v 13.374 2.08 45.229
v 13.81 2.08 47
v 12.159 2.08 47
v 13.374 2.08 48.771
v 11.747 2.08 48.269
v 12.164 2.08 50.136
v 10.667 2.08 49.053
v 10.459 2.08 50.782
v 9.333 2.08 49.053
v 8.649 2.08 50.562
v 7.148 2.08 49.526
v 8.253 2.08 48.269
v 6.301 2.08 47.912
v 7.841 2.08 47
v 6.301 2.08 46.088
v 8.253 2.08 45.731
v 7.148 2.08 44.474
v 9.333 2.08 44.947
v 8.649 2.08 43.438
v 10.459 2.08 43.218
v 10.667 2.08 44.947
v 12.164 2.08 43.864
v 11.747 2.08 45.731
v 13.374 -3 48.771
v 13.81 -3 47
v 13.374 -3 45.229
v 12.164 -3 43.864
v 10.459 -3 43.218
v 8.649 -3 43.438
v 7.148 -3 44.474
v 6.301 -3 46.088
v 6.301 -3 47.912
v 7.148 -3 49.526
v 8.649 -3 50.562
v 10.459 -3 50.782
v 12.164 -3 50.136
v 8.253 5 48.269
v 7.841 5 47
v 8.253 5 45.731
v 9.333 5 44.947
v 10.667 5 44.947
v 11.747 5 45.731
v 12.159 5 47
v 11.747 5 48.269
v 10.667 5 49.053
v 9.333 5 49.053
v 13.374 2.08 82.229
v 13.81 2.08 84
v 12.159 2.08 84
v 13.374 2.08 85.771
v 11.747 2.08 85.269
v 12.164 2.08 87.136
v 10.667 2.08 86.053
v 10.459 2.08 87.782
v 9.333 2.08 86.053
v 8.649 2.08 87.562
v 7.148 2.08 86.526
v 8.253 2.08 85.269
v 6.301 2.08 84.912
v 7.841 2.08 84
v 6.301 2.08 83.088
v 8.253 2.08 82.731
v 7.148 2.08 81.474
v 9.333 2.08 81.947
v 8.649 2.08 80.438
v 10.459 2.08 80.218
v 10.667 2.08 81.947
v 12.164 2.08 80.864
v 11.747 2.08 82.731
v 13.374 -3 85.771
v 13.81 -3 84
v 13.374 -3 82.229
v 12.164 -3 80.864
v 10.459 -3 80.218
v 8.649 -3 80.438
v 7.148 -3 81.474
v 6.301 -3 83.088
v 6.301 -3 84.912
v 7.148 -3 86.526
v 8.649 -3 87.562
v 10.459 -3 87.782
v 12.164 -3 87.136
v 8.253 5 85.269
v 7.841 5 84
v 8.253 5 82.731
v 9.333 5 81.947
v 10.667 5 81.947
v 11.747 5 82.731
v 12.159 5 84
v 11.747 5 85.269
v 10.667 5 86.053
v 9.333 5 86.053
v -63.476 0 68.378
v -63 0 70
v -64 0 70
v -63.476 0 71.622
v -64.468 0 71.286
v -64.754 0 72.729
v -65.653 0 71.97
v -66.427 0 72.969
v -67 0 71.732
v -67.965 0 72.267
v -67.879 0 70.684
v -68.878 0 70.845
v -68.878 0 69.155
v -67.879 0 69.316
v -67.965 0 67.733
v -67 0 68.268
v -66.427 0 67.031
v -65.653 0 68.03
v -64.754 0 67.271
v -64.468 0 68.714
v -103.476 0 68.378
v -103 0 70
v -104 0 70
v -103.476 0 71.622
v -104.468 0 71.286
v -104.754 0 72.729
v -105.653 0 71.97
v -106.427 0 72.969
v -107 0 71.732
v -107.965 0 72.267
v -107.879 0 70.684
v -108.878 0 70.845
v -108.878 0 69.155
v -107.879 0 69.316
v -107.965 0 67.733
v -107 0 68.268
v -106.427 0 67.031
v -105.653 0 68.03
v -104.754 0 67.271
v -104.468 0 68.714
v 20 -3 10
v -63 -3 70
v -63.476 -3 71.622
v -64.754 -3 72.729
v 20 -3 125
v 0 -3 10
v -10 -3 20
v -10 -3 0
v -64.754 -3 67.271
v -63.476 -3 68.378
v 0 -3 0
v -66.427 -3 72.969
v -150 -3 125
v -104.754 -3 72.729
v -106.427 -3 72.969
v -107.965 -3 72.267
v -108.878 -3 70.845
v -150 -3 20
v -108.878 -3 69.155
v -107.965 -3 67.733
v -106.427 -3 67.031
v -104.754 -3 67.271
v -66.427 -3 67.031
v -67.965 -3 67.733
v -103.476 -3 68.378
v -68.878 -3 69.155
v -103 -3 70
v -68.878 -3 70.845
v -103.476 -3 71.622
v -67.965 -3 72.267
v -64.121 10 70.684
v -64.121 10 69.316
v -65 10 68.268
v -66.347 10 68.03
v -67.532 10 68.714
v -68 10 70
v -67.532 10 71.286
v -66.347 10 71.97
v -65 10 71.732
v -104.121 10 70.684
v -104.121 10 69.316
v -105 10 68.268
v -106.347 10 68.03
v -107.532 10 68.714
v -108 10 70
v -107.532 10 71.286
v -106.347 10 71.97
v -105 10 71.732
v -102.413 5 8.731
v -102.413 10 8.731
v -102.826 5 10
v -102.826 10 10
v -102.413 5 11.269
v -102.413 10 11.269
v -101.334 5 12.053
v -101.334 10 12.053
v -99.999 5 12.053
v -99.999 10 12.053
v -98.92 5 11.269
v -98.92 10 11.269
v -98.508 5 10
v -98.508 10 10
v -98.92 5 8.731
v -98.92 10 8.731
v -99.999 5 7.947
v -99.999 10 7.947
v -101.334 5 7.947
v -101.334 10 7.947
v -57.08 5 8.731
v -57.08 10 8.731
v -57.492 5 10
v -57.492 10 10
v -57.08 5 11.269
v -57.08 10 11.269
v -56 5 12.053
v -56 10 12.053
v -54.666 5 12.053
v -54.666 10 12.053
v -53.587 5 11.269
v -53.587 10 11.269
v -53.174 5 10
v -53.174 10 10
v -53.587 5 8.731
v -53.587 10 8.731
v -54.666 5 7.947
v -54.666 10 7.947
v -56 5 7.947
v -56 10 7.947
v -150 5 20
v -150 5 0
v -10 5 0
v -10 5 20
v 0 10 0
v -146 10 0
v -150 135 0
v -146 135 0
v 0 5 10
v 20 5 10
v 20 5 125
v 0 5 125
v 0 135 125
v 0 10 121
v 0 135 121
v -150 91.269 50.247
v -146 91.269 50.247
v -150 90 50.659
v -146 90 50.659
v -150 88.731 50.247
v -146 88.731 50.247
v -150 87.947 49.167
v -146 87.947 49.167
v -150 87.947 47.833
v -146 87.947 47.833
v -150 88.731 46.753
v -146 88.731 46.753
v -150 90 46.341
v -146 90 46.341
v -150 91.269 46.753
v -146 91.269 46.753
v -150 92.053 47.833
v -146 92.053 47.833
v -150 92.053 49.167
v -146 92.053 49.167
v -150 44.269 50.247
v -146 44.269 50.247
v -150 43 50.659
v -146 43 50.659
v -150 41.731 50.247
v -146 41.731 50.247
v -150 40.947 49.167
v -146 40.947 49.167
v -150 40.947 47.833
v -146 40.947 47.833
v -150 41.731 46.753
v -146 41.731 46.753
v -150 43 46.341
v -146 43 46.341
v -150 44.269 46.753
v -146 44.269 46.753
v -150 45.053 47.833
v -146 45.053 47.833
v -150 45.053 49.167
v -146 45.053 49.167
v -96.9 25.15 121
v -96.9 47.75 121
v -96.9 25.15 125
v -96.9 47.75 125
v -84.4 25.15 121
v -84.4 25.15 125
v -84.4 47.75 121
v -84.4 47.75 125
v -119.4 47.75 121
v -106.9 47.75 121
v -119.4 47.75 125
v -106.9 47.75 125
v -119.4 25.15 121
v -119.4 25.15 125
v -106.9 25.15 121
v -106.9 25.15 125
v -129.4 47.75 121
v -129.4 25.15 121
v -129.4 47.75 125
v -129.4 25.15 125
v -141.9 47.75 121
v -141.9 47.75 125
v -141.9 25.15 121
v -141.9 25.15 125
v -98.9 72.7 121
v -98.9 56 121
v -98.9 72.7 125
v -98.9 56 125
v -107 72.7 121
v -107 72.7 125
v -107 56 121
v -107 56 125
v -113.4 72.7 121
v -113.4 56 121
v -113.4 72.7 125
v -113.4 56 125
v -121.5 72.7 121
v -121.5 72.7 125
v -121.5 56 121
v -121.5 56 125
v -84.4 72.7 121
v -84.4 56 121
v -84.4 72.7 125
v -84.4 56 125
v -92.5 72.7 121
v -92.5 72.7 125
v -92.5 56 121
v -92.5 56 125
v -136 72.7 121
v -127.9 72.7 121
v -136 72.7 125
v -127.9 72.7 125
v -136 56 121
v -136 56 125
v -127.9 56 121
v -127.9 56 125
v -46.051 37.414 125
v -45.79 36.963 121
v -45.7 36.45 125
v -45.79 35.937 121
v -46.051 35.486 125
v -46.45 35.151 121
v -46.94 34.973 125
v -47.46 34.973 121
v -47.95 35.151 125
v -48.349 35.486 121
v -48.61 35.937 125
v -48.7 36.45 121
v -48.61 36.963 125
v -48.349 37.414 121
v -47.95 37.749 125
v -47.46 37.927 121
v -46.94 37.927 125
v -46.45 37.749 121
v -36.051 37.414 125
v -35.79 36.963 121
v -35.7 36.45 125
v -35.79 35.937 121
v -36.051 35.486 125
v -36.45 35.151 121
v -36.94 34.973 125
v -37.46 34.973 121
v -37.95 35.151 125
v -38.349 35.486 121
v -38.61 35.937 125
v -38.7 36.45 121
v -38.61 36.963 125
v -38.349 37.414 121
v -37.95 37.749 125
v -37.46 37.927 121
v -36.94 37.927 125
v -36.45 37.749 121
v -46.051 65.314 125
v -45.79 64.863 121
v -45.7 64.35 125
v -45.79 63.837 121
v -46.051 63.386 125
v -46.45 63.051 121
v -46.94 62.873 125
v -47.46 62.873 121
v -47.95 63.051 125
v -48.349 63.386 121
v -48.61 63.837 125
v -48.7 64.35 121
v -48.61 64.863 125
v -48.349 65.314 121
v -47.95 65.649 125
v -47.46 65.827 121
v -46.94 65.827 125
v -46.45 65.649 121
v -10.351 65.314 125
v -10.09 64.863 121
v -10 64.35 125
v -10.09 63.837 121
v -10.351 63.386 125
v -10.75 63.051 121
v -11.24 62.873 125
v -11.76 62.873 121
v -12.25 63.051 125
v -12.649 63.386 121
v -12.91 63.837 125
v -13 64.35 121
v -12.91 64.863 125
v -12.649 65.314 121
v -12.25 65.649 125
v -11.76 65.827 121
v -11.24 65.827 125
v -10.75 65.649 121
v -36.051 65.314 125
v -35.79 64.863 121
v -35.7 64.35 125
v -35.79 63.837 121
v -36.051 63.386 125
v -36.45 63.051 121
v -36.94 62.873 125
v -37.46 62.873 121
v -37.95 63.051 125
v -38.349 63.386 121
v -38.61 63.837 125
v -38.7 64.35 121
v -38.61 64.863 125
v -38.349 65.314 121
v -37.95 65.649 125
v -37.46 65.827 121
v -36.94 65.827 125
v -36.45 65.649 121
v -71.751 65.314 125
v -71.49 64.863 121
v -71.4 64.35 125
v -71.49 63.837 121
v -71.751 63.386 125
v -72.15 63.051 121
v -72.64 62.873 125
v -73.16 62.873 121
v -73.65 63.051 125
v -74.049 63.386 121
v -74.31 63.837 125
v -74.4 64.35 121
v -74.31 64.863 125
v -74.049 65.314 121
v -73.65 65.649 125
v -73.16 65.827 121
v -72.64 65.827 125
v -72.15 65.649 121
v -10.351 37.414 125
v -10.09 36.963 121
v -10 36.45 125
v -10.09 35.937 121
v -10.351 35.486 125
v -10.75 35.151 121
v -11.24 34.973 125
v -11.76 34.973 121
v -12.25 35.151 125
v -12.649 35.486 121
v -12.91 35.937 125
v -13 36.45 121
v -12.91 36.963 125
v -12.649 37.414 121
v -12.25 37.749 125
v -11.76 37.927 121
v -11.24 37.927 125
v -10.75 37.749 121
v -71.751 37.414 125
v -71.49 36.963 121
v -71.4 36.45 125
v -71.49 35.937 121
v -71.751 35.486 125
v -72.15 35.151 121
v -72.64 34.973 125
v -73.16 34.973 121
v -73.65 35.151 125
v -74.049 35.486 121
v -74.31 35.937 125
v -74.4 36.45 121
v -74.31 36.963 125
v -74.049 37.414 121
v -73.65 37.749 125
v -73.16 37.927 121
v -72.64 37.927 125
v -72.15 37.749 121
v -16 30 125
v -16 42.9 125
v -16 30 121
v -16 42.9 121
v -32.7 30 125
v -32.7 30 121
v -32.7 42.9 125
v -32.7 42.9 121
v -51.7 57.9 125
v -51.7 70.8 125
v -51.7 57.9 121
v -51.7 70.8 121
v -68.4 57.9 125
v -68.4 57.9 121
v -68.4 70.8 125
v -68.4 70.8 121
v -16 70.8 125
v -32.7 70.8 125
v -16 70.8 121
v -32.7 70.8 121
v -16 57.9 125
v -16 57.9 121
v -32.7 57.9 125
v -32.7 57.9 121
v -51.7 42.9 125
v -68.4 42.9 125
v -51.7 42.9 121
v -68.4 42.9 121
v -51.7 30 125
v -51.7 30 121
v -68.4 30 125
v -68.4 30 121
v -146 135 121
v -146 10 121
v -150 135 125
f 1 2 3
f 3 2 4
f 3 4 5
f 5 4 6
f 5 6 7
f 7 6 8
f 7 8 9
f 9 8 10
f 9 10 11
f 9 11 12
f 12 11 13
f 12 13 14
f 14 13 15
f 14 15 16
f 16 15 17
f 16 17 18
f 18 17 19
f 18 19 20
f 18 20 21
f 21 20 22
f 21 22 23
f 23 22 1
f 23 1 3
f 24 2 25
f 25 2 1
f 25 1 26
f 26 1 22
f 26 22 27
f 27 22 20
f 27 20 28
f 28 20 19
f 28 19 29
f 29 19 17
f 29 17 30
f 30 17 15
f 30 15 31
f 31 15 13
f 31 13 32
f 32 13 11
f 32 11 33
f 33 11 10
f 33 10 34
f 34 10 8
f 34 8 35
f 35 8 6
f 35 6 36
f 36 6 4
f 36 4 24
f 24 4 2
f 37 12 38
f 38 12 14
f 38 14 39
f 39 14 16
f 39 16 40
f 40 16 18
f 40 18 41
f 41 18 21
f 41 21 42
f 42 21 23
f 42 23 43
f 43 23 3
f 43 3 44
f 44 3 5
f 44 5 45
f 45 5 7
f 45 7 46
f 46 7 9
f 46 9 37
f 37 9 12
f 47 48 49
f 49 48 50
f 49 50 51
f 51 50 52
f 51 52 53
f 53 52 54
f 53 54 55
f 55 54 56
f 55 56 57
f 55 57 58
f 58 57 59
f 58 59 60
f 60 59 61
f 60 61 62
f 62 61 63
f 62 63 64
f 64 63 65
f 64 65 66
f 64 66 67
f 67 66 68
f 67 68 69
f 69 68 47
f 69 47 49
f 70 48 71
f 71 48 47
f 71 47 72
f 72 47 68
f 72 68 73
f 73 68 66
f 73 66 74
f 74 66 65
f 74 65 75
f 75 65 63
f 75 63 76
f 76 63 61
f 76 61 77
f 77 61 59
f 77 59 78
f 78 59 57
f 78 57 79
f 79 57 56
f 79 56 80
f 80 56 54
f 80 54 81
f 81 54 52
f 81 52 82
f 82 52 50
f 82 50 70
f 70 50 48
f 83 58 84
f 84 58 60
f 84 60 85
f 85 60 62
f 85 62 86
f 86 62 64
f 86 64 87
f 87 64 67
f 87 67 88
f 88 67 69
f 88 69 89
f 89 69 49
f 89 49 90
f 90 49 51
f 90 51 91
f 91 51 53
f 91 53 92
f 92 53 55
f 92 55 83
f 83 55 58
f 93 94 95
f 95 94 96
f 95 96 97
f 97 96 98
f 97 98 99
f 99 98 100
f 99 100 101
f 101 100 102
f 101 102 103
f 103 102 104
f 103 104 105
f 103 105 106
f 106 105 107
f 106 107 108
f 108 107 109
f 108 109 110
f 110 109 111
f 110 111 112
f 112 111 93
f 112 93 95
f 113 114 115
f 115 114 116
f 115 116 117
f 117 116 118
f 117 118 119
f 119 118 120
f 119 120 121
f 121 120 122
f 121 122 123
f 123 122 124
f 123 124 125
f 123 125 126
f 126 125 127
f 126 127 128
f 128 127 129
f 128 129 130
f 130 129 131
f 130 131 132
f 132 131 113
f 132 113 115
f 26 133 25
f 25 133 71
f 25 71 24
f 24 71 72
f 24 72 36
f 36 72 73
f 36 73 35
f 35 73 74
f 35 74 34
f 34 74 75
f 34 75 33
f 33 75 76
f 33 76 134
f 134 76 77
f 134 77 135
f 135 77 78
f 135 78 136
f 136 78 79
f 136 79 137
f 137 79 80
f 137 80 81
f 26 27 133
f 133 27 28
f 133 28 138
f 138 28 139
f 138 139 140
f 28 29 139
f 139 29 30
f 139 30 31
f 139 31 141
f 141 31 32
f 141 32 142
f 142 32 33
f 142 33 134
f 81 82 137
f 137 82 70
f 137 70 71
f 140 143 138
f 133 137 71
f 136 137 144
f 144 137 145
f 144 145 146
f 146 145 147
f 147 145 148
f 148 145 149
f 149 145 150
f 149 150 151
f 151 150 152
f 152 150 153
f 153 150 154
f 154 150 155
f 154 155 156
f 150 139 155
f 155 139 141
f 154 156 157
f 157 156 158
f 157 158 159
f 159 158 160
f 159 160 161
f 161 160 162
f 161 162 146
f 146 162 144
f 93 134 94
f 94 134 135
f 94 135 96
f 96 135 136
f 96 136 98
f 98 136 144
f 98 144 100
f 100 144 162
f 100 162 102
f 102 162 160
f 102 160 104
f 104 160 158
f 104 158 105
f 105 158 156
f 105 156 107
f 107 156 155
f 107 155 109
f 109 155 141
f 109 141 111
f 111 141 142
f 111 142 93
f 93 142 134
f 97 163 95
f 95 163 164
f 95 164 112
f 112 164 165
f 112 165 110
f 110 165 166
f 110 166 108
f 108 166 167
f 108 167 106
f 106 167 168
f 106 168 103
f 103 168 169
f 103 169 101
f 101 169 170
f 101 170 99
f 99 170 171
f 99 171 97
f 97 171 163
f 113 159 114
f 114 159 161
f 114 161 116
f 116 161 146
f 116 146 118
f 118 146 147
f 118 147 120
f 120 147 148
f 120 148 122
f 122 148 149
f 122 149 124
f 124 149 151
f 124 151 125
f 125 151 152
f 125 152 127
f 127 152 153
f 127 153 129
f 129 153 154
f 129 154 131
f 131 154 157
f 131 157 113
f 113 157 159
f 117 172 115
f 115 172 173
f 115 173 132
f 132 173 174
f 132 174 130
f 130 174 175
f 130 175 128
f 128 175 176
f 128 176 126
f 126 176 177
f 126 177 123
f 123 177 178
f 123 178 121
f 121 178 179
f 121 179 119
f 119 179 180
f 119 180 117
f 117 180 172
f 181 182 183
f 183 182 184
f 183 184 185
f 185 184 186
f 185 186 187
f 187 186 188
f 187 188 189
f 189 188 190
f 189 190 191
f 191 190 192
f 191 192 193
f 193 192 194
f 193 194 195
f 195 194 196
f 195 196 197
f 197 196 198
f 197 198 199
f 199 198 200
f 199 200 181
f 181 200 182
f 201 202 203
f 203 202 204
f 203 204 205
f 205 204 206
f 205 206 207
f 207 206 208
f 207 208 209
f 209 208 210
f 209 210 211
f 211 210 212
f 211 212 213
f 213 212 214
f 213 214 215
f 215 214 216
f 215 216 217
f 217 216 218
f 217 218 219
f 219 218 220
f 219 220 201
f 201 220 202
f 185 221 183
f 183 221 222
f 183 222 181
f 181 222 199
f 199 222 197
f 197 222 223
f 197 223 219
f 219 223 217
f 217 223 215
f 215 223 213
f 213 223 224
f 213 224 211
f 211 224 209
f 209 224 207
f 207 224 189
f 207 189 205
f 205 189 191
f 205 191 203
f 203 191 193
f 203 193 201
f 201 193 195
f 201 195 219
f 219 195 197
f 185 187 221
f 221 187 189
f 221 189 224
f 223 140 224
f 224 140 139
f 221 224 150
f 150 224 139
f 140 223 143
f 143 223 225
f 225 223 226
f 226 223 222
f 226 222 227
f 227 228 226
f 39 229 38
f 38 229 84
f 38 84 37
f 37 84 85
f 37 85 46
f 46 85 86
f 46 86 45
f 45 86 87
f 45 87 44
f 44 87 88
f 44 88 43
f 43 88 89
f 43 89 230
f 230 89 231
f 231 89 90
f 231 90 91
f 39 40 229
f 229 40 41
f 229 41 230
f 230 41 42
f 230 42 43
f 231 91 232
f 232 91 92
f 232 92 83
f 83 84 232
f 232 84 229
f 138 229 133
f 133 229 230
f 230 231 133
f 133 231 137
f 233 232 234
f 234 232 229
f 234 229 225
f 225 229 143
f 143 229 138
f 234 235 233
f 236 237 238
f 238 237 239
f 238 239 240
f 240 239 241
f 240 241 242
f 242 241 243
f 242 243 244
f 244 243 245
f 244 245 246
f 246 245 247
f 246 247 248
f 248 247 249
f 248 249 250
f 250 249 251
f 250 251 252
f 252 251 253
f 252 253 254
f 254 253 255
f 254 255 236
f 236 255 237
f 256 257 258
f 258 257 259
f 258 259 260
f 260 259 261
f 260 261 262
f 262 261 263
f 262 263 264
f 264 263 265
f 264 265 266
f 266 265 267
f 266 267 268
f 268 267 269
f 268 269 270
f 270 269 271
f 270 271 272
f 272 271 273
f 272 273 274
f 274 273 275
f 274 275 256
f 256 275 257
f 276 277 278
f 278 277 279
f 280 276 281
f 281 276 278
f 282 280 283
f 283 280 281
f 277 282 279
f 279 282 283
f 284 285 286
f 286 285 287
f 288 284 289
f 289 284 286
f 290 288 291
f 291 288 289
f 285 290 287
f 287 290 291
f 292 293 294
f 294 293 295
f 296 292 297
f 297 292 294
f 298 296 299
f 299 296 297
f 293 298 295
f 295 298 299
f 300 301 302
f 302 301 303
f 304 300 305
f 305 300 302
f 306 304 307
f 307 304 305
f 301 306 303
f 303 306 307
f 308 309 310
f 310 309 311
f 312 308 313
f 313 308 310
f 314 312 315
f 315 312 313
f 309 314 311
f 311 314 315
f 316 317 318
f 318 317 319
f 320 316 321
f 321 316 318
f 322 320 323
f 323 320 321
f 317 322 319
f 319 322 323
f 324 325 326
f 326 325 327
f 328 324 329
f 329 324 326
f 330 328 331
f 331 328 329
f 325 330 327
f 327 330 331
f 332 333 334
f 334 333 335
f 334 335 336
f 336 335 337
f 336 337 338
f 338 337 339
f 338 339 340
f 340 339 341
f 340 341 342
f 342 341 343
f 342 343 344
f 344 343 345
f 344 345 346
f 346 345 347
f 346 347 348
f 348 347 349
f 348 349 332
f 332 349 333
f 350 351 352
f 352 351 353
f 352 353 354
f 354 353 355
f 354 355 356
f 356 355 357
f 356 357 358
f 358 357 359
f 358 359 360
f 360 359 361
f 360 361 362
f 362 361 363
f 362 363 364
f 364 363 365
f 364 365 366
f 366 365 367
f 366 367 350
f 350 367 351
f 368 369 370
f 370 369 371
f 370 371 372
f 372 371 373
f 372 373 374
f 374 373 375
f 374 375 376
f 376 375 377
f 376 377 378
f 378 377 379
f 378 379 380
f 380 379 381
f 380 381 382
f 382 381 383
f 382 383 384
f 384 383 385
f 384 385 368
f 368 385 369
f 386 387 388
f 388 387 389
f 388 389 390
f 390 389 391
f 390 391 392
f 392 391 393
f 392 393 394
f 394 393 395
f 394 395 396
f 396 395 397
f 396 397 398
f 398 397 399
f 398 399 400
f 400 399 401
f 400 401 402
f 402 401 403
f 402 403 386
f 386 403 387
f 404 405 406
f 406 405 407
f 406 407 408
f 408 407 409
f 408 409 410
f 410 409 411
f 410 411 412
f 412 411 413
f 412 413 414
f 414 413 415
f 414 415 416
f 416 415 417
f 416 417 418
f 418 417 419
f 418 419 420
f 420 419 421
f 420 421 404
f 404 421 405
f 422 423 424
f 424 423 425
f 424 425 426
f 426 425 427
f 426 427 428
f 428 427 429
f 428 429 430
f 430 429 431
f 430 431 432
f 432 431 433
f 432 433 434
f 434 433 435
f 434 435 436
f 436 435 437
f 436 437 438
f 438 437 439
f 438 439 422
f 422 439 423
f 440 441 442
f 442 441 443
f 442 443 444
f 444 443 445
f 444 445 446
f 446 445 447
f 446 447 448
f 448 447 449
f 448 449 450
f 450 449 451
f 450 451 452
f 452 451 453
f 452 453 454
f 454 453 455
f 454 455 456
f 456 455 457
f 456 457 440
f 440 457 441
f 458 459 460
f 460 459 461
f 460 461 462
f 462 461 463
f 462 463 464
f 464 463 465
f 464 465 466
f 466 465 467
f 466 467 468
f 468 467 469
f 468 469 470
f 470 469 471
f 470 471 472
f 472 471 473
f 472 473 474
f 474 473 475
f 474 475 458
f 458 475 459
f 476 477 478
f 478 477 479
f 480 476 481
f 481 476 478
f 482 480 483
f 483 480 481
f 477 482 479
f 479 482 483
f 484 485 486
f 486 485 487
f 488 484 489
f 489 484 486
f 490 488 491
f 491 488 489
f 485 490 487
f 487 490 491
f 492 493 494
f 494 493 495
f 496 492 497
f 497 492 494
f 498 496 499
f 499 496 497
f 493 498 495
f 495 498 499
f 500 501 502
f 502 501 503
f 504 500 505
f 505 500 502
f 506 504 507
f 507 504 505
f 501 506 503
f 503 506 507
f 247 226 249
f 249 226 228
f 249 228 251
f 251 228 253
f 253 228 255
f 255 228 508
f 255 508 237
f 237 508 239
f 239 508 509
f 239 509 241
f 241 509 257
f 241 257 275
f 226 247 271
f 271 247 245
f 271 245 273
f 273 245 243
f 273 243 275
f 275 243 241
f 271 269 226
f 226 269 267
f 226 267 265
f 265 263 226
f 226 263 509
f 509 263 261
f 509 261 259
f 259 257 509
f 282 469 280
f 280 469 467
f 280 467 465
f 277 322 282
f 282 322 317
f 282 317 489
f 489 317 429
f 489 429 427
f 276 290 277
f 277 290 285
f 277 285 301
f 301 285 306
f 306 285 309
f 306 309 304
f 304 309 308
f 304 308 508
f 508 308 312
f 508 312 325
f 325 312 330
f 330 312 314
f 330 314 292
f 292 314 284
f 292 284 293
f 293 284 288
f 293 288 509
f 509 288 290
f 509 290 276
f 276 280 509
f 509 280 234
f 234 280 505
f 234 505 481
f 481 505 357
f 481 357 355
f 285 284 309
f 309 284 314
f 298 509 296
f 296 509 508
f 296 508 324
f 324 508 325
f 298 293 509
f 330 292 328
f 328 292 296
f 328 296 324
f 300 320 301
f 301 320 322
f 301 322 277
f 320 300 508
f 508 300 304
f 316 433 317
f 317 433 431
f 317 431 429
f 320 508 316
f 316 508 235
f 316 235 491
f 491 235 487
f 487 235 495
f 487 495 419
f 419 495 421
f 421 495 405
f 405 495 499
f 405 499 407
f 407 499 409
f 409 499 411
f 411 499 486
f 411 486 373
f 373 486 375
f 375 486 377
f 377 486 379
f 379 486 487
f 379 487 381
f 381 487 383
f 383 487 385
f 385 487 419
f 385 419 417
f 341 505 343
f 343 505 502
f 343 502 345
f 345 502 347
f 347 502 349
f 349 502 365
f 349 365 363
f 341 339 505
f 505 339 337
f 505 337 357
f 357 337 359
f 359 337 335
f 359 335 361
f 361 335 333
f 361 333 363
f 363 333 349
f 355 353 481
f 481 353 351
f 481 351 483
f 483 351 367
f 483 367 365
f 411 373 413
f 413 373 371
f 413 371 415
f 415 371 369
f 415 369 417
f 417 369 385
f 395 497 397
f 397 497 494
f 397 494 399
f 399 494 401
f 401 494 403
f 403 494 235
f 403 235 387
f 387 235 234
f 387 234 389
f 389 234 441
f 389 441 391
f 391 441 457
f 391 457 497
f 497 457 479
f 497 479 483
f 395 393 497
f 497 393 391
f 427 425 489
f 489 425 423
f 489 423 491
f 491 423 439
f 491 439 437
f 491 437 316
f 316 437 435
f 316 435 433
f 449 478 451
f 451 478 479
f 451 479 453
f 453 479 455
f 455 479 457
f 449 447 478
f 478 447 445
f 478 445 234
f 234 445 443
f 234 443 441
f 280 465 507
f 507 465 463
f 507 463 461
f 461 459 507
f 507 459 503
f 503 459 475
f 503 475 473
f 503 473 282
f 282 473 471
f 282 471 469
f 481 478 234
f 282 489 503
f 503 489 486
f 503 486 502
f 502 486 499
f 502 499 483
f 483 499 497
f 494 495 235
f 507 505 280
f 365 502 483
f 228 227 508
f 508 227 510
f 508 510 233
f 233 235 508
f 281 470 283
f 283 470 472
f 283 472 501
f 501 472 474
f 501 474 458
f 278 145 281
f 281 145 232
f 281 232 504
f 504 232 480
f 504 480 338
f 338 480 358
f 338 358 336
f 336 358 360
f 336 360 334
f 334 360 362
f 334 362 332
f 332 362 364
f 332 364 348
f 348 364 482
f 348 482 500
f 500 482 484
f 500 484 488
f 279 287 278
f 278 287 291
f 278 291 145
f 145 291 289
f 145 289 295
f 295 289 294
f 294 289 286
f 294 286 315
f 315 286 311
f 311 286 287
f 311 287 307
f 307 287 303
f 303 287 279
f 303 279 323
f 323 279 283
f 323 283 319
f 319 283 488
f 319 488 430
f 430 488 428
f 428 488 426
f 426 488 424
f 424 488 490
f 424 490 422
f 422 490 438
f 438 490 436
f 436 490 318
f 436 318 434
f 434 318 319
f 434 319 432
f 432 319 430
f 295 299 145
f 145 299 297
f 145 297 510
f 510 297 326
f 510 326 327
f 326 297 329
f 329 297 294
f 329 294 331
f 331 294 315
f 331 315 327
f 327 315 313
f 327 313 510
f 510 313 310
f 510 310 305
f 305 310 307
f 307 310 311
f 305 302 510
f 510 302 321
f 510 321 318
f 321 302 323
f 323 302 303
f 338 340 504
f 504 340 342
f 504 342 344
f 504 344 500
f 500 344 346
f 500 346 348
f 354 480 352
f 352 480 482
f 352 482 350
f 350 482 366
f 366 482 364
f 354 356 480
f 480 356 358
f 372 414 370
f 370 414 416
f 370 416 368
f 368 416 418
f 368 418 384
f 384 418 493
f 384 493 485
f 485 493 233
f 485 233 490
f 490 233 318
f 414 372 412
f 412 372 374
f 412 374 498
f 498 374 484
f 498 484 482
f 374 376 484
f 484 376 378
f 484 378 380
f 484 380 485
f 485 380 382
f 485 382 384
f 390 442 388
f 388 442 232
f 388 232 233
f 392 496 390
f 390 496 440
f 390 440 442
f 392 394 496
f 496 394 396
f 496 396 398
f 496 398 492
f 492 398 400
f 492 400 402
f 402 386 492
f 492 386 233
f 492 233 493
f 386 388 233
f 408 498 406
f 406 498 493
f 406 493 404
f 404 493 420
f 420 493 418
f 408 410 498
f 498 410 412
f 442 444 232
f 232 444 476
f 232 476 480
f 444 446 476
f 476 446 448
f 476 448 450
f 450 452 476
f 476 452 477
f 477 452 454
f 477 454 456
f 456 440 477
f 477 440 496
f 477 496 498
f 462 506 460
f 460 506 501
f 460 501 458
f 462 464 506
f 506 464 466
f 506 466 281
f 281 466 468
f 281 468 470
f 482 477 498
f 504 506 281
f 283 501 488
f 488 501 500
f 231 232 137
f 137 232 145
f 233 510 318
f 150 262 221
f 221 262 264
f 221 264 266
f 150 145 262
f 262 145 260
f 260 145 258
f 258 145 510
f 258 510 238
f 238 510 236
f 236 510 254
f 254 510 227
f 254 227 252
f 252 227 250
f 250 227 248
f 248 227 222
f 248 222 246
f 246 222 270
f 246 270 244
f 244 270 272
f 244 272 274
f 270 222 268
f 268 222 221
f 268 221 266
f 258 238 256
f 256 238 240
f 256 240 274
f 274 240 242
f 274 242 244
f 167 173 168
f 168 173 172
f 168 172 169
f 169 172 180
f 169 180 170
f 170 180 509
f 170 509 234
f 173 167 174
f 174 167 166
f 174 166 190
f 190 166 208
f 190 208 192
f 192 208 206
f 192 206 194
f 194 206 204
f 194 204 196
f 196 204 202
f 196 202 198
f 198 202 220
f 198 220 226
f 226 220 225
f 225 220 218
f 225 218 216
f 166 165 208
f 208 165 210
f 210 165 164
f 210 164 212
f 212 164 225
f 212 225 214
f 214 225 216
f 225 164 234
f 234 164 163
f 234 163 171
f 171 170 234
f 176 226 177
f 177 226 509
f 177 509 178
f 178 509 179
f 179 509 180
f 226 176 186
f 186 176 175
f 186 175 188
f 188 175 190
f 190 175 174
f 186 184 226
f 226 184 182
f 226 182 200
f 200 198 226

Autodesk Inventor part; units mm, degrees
ref_plane "YZ Plane" through (0, 0, 0) normal (1, 0, 0) x (0, 1, 0)
ref_plane "XZ Plane" through (0, 0, 0) normal (0, 1, 0) x (-1, 0, 0)
ref_plane "XY Plane" through (0, 0, 0) normal (0, 0, 1) x (1, 0, 0)
sketch "Sketch1" plane through (0, 0, 0) normal (0, 1, 0) x (-1, 0, 0)
  line L0 (0, 0) -> (150, 0)
  line L1 (150, 0) -> (150, 125)
  line L2 (150, 125) -> (0, 125)
  line L3 (0, 125) -> (0, 0)
  dimension "d0" = 150
  dimension "d1" = 125
extrude "Extrusion1" add sketch "Sketch1" along normal blind 10
sketch "Sketch2" plane through (0, 10, 0) normal (0, 1, 0) x (1, 0, 0)
  line L0 (0, -125) -> (0, 0) projected
  line L1 (0, 0) -> (-146, 0)
  line L2 (-146, 0) -> (-146, -121)
  line L3 (-146, -121) -> (0, -121)
  line L4 (0, -121) -> (0, 0)
  line L5 (0, -125) -> (0, 0) projected
  line L6 (0, 0) -> (-150, 0) projected
  line L7 (-150, 0) -> (-150, -125) projected
  line L8 (-150, -125) -> (0, -125) projected
  point P0 (-146, 0)
  dimension "d4" = 146
  dimension "d5" = 121
extrude "Extrusion2" add sketch "Sketch2" along normal blind 125 contours L8 L7 L6 L2 L3 L0
sketch "Sketch3" plane through (0, 0, 125) normal (1, 0, 0) x (0, 0, -1)
  line L0 (0, 0) -> (0, 135) projected
  line L1 (0, 0) -> (0, 5)
  line L2 (125, 0) -> (125, 10) projected
  line L3 (125, 0) -> (0, 0) projected
  line L4 (125, 0) -> (0, 0)
  line L5 (0, 5) -> (115, 5)
  line L6 (115, 5) -> (125, 5)
  line L7 (115, 5) -> (115, 0)
  line L8 (0, 0) -> (125, 0) projected
  dimension "d8" = 5
  dimension "d95" = 125
  dimension "d96" = 115
sketch "Sketch4" plane through (0, 10, 121) normal (0, 0, -1) x (-1, 0, 0)
  line L0 (0, 20) -> (16, 20)
  line L1 (16, 20) -> (32.7, 20)
  line L2 (32.7, 20) -> (32.7, 32.9)
  line L3 (32.7, 32.9) -> (16, 32.9)
  line L4 (16, 32.9) -> (16, 20)
  line L5 (16, 26.45) -> (13, 26.45)
  line L6 (13, 26.45) -> (11.5, 26.45)
  circle A0 centre (11.5, 26.45) radius 1.5
  line L7 (32.7, 26.45) -> (37.2, 26.45)
  circle A1 centre (37.2, 26.45) radius 1.5
  line L8 (16, 32.9) -> (16, 47.9)
  line L9 (16, 47.9) -> (32.7, 47.9)
  line L10 (32.7, 47.9) -> (32.7, 60.8)
  line L11 (32.7, 60.8) -> (16, 60.8)
  line L12 (16, 60.8) -> (16, 47.9)
  line L13 (16, 54.35) -> (11.5, 54.35)
  line L14 (11.5, 54.35) -> (37.2, 54.35)
  circle A2 centre (11.5, 54.35) radius 1.5
  circle A3 centre (37.2, 54.35) radius 1.5
  line L15 (47.2, 54.35) -> (51.7, 54.35)
  line L16 (51.7, 54.35) -> (51.7, 47.9)
  line L17 (51.7, 47.9) -> (68.4, 47.9)
  line L18 (68.4, 47.9) -> (68.4, 60.8)
  line L19 (68.4, 60.8) -> (51.7, 60.8)
  line L20 (51.7, 60.8) -> (51.7, 54.35)
  line L21 (68.4, 54.35) -> (72.9, 54.35)
  circle A4 centre (47.2, 54.35) radius 1.5
  circle A5 centre (72.9, 54.35) radius 1.5
  line L22 (0, 0) -> (0, 125) projected
  line L23 (0, 20) -> (0, 0)
  line L24 (51.7, 32.9) -> (51.7, 20)
  line L25 (51.7, 20) -> (68.4, 20)
  line L26 (68.4, 20) -> (68.4, 32.9)
  line L27 (68.4, 32.9) -> (51.7, 32.9)
  line L28 (68.4, 26.45) -> (72.9, 26.45)
  line L29 (72.9, 26.45) -> (47.2, 26.45)
  circle A6 centre (47.2, 26.45) radius 1.5
  circle A7 centre (72.9, 26.45) radius 1.5
  line L30 (68.4, 47.9) -> (68.4, 32.9)
  line L31 (37.2, 54.35) -> (47.2, 54.35)
  point P0 (0, -10)
  dimension "d12" = 16
  dimension "d13" = 16.7
  dimension "d14" = 12.9
  dimension "d15" = 3
  dimension "d16" = 1.5
  dimension "d17" = 4.5
  dimension "d18" = 3
  dimension "d19" = 15
  dimension "d20" = 12.9
  dimension "d23" = 4.5
  dimension "d25" = 4.5
  dimension "d29" = 3
  dimension "d30" = 3
  dimension "d57" = 20
  dimension "d58" = 3
  dimension "d59" = 3
  dimension "d60" = 16.7
  dimension "d62" = 15
  dimension "d73" = 3
  dimension "d74" = 10
  dimension "d75" = 4.5
  dimension "d76" = 16.7
  dimension "d77" = 16.7
extrude "Extrusion4" cut sketch "Sketch4" against normal blind 125 contours L4 L3 L2 L1 | L26 L29 L24 L27 | L20 L19 L18 L17 L16 | L12 L14 L10 L9 | L12 L11 L10 L14 | L26 L25 L24 L29
hole "Hole1" at (-11.5, 64.35, 121) at (-37.2, 64.35, 121) at (-47.2, 64.35, 121) at (-72.9, 64.35, 121) at (-37.2, 36.45, 121) at (-11.5, 36.45, 121) at (-47.2, 36.45, 121) at (-72.9, 36.45, 121) direction (0, 0, 1) diameter 3 end through all
sketch "Sketch5" plane through (-150, 135, 125) normal (0, 0, 1) x (1, 0, 0)
  circle A0 centre (77.1, -70.65) radius 1.5 projected
  line L0 (77.1, -70.65) -> (65.6, -70.65)
  line L1 (65.6, -70.65) -> (65.6, -62.3)
  line L2 (65.6, -62.3) -> (65.6, -79)
  line L3 (65.6, -79) -> (57.5, -79)
  line L4 (57.5, -79) -> (57.5, -62.3)
  line L5 (57.5, -62.3) -> (65.6, -62.3)
  line L6 (57.5, -62.3) -> (51.1, -62.3)
  line L7 (51.1, -62.3) -> (36.6, -62.3)
  line L8 (51.1, -62.3) -> (43, -62.3)
  line L9 (43, -62.3) -> (43, -79)
  line L10 (43, -79) -> (51.1, -79)
  line L11 (51.1, -79) -> (51.1, -62.3)
  line L12 (36.6, -62.3) -> (28.5, -62.3)
  line L13 (28.5, -62.3) -> (28.5, -79)
  line L14 (28.5, -79) -> (36.6, -79)
  line L15 (36.6, -79) -> (36.6, -62.3)
  line L16 (28.5, -62.3) -> (22.1, -62.3)
  line L17 (22.1, -62.3) -> (14, -62.3)
  line L18 (14, -62.3) -> (14, -79)
  line L19 (14, -79) -> (22.1, -79)
  line L20 (22.1, -79) -> (22.1, -62.3)
  point P0 (150, -135)
  point P1 (43, -62.3)
  dimension "d41" = 11.5
  dimension "d43" = 8.35
  dimension "d44" = 16.7
  dimension "d45" = 8.1
  dimension "d46" = 6.4
  dimension "d47" = 14.5
  dimension "d48" = 8.1
  dimension "d49" = 16.7
  dimension "d50" = 8.1
  dimension "d51" = 16.7
  dimension "d52" = 6.4
  dimension "d53" = 8.1
  dimension "d54" = 16.7
extrude "Extrusion5" cut sketch "Sketch5" against normal blind 10 contours L20 L19 L18 L17 | L15 L14 L13 L12 | L11 L10 L9 L7 | L2 L3 L4 L5 L1
sketch "Sketch8" plane through (-150, 135, 125) normal (0, 0, 1) x (1, 0, 0)
  circle A0 centre (77.1, -98.55) radius 1.5 projected
  line L0 (77.1, -98.55) -> (65.6, -98.55)
  line L1 (65.6, -98.55) -> (65.6, -87.25)
  line L2 (65.6, -87.25) -> (65.6, -109.85)
  line L3 (65.6, -109.85) -> (53.1, -109.85)
  line L4 (53.1, -109.85) -> (53.1, -87.25)
  line L5 (53.1, -87.25) -> (65.6, -87.25)
  line L6 (53.1, -87.25) -> (43.1, -87.25)
  line L7 (43.1, -87.25) -> (43.1, -109.85)
  line L8 (43.1, -109.85) -> (30.6, -109.85)
  line L9 (30.6, -109.85) -> (30.6, -87.25)
  line L10 (30.6, -87.25) -> (43.1, -87.25)
  line L11 (30.6, -87.25) -> (20.6, -87.25)
  line L12 (20.6, -87.25) -> (20.6, -109.85)
  line L13 (20.6, -109.85) -> (8.1, -109.85)
  line L14 (8.1, -109.85) -> (8.1, -87.25)
  line L15 (8.1, -87.25) -> (20.6, -87.25)
  dimension "d63" = 11.5
  dimension "d64" = 11.3
  dimension "d65" = 22.6
  dimension "d66" = 12.5
  dimension "d67" = 10
  dimension "d68" = 12.5
  dimension "d69" = 10
  dimension "d70" = 22.6
  dimension "d71" = 12.5
  dimension "d113" = 22.6
extrude "Extrusion6" cut sketch "Sketch8" against normal blind 10 contours L12 L13 L14 L15 | L7 L8 L9 L10 | L2 L3 L4 L5 L1
sketch "Sketch9" plane through (-146, 10, 121) normal (1, 0, 0) x (0, 0, -1)
  line L0 (0, 0) -> (0, 125) projected
  line L1 (0, 125) -> (50, 125)
  line L2 (0, 125) -> (121, 125) projected
  line L3 (50, 125) -> (50, 85)
  line L4 (50, 85) -> (95, 85)
  line L5 (95, 85) -> (95, 28)
  line L6 (95, 28) -> (50, 28)
  line L7 (50, 28) -> (50, 85)
  line L8 (72.5, 85) -> (72.5, 80)
  line L9 (72.5, 80) -> (72.5, 33)
  circle A0 centre (72.5, 80) radius 2.5
  circle A1 centre (72.5, 33) radius 2.5
  point P0 (121, -10)
  dimension "d80" = 50
  dimension "d81" = 40
  dimension "d82" = 45
  dimension "d83" = 57
  dimension "d84" = 5
  dimension "d85" = 47
  dimension "d86" = 5
  dimension "d87" = 5
hole "Hole2" at (-146, 90, 48.5) at (-146, 43, 48.5) direction (-1, 0, 0) diameter 4.318 end through all
extrude "Extrusion7" add sketch "Sketch3" along normal blind 20 contours L0 L5 L7 L3
sketch "Sketch10" plane through (0, 0, 0) normal (0, -1, 0) x (1, 0, 0)
  point P0 (0, 0)
sketch "Sketch11" plane through (0, 0, 0) normal (0, 0, -1) x (-1, 0, 0)
  line L0 (150, 0) -> (150, 135) projected
  line L1 (150, 0) -> (150, 5)
  line L2 (150, 5) -> (10, 5)
  line L3 (10, 5) -> (10, 0)
  line L4 (10, 0) -> (150, 0)
  point P0 (0, 0)
  dimension "d99" = 5
  dimension "d100" = 140
extrude "Extrusion8" cut sketch "Sketch11" against normal blind 20
sketch "Sketch13" plane through (0, 10, 0) normal (0, 1, 0) x (1, 0, 0)
  line L0 (0, 0) -> (-146, 0) projected
  line L1 (0, 0) -> (-10, 0)
  line L2 (-10, 0) -> (-55.3333, 0)
  line L3 (-55.3333, 0) -> (-100.6667, 0)
  line L4 (-100.6667, 0) -> (-100.6667, -10)
  line L5 (-55.3333, 0) -> (-55.3333, -10)
  dimension "d114" = 10
  dimension "d115" = 45.3333
  dimension "d116" = 45.3333
  dimension "d117" = 10
  dimension "d118" = 10
hole "Hole4" at (-100.6667, 10, 10) at (-55.3333, 10, 10) direction (0, -1, 0) diameter 4.318 end through all
sketch "Sketch12" plane through (0, 0, 0) normal (0, 1, 0) x (1, 0, 0)
  line L0 (-146, -121) -> (-146, 0) projected
  line L1 (-146, 0) -> (-106, 0)
  line L2 (0, 0) -> (-146, 0) projected
  line L3 (-106, 0) -> (-106, -70)
  line L4 (-106, -70) -> (-66, -70)
  dimension "d103" = 40
  dimension "d104" = 70
  dimension "d105" = 40
hole "Hole3" at (-66, 0, 70) at (-106, 0, 70) direction (0, 1, 0) diameter 4 end through all counterbore diameter 6 counterbore depth 3
sketch "Sketch16" plane through (0, 0, 0) normal (0, -1, 0) x (1, 0, 0)
  circle A0 centre (-66, 70) radius 3 projected
  circle A1 centre (-106, 70) radius 3 projected
  line L0 (-10, 20) -> (-10, 0) projected
  line L1 (0, 0) -> (-10, 0) projected
  line L2 (0, 10) -> (0, 0) projected
  line L3 (0, 10) -> (20, 10) projected
  line L4 (20, 125) -> (20, 10) projected
  line L5 (-150, 125) -> (20, 125) projected
  line L6 (-150, 20) -> (-150, 125) projected
  line L7 (-150, 20) -> (-10, 20) projected
extrude "Extrusion10" add sketch "Sketch16" along normal blind 3
sketch "Sketch17" plane through (-66, 3, 70) normal (0, -1, 0) x (1, 0, 0)
  circle A0 centre (0, 0) radius 3 projected
  circle A1 centre (0, 0) radius 2 projected
  circle A2 centre (-40, 0) radius 3 projected
  circle A3 centre (-40, 0) radius 2 projected
  point P0 (66, -70)
extrude "Extrusion11" add sketch "Sketch17" along normal blind 3
sketch "Sketch18" plane through (0, -3, 0) normal (0, -1, 0) x (1, 0, 0)
  circle A0 centre (10, 84) radius 1.75 projected
  circle A1 centre (10, 84) radius 1.75
  circle A2 centre (10, 47) radius 1.75 projected
  circle A3 centre (10, 47) radius 1.75
  point P0 (0, 0)
hole "Hole6" at (10, -3, 47) at (10, -3, 84) direction (0, 1, 0) diameter 4.318 end through all counterbore diameter 7.62 counterbore depth 5.08
properties part number "Quarter4"
